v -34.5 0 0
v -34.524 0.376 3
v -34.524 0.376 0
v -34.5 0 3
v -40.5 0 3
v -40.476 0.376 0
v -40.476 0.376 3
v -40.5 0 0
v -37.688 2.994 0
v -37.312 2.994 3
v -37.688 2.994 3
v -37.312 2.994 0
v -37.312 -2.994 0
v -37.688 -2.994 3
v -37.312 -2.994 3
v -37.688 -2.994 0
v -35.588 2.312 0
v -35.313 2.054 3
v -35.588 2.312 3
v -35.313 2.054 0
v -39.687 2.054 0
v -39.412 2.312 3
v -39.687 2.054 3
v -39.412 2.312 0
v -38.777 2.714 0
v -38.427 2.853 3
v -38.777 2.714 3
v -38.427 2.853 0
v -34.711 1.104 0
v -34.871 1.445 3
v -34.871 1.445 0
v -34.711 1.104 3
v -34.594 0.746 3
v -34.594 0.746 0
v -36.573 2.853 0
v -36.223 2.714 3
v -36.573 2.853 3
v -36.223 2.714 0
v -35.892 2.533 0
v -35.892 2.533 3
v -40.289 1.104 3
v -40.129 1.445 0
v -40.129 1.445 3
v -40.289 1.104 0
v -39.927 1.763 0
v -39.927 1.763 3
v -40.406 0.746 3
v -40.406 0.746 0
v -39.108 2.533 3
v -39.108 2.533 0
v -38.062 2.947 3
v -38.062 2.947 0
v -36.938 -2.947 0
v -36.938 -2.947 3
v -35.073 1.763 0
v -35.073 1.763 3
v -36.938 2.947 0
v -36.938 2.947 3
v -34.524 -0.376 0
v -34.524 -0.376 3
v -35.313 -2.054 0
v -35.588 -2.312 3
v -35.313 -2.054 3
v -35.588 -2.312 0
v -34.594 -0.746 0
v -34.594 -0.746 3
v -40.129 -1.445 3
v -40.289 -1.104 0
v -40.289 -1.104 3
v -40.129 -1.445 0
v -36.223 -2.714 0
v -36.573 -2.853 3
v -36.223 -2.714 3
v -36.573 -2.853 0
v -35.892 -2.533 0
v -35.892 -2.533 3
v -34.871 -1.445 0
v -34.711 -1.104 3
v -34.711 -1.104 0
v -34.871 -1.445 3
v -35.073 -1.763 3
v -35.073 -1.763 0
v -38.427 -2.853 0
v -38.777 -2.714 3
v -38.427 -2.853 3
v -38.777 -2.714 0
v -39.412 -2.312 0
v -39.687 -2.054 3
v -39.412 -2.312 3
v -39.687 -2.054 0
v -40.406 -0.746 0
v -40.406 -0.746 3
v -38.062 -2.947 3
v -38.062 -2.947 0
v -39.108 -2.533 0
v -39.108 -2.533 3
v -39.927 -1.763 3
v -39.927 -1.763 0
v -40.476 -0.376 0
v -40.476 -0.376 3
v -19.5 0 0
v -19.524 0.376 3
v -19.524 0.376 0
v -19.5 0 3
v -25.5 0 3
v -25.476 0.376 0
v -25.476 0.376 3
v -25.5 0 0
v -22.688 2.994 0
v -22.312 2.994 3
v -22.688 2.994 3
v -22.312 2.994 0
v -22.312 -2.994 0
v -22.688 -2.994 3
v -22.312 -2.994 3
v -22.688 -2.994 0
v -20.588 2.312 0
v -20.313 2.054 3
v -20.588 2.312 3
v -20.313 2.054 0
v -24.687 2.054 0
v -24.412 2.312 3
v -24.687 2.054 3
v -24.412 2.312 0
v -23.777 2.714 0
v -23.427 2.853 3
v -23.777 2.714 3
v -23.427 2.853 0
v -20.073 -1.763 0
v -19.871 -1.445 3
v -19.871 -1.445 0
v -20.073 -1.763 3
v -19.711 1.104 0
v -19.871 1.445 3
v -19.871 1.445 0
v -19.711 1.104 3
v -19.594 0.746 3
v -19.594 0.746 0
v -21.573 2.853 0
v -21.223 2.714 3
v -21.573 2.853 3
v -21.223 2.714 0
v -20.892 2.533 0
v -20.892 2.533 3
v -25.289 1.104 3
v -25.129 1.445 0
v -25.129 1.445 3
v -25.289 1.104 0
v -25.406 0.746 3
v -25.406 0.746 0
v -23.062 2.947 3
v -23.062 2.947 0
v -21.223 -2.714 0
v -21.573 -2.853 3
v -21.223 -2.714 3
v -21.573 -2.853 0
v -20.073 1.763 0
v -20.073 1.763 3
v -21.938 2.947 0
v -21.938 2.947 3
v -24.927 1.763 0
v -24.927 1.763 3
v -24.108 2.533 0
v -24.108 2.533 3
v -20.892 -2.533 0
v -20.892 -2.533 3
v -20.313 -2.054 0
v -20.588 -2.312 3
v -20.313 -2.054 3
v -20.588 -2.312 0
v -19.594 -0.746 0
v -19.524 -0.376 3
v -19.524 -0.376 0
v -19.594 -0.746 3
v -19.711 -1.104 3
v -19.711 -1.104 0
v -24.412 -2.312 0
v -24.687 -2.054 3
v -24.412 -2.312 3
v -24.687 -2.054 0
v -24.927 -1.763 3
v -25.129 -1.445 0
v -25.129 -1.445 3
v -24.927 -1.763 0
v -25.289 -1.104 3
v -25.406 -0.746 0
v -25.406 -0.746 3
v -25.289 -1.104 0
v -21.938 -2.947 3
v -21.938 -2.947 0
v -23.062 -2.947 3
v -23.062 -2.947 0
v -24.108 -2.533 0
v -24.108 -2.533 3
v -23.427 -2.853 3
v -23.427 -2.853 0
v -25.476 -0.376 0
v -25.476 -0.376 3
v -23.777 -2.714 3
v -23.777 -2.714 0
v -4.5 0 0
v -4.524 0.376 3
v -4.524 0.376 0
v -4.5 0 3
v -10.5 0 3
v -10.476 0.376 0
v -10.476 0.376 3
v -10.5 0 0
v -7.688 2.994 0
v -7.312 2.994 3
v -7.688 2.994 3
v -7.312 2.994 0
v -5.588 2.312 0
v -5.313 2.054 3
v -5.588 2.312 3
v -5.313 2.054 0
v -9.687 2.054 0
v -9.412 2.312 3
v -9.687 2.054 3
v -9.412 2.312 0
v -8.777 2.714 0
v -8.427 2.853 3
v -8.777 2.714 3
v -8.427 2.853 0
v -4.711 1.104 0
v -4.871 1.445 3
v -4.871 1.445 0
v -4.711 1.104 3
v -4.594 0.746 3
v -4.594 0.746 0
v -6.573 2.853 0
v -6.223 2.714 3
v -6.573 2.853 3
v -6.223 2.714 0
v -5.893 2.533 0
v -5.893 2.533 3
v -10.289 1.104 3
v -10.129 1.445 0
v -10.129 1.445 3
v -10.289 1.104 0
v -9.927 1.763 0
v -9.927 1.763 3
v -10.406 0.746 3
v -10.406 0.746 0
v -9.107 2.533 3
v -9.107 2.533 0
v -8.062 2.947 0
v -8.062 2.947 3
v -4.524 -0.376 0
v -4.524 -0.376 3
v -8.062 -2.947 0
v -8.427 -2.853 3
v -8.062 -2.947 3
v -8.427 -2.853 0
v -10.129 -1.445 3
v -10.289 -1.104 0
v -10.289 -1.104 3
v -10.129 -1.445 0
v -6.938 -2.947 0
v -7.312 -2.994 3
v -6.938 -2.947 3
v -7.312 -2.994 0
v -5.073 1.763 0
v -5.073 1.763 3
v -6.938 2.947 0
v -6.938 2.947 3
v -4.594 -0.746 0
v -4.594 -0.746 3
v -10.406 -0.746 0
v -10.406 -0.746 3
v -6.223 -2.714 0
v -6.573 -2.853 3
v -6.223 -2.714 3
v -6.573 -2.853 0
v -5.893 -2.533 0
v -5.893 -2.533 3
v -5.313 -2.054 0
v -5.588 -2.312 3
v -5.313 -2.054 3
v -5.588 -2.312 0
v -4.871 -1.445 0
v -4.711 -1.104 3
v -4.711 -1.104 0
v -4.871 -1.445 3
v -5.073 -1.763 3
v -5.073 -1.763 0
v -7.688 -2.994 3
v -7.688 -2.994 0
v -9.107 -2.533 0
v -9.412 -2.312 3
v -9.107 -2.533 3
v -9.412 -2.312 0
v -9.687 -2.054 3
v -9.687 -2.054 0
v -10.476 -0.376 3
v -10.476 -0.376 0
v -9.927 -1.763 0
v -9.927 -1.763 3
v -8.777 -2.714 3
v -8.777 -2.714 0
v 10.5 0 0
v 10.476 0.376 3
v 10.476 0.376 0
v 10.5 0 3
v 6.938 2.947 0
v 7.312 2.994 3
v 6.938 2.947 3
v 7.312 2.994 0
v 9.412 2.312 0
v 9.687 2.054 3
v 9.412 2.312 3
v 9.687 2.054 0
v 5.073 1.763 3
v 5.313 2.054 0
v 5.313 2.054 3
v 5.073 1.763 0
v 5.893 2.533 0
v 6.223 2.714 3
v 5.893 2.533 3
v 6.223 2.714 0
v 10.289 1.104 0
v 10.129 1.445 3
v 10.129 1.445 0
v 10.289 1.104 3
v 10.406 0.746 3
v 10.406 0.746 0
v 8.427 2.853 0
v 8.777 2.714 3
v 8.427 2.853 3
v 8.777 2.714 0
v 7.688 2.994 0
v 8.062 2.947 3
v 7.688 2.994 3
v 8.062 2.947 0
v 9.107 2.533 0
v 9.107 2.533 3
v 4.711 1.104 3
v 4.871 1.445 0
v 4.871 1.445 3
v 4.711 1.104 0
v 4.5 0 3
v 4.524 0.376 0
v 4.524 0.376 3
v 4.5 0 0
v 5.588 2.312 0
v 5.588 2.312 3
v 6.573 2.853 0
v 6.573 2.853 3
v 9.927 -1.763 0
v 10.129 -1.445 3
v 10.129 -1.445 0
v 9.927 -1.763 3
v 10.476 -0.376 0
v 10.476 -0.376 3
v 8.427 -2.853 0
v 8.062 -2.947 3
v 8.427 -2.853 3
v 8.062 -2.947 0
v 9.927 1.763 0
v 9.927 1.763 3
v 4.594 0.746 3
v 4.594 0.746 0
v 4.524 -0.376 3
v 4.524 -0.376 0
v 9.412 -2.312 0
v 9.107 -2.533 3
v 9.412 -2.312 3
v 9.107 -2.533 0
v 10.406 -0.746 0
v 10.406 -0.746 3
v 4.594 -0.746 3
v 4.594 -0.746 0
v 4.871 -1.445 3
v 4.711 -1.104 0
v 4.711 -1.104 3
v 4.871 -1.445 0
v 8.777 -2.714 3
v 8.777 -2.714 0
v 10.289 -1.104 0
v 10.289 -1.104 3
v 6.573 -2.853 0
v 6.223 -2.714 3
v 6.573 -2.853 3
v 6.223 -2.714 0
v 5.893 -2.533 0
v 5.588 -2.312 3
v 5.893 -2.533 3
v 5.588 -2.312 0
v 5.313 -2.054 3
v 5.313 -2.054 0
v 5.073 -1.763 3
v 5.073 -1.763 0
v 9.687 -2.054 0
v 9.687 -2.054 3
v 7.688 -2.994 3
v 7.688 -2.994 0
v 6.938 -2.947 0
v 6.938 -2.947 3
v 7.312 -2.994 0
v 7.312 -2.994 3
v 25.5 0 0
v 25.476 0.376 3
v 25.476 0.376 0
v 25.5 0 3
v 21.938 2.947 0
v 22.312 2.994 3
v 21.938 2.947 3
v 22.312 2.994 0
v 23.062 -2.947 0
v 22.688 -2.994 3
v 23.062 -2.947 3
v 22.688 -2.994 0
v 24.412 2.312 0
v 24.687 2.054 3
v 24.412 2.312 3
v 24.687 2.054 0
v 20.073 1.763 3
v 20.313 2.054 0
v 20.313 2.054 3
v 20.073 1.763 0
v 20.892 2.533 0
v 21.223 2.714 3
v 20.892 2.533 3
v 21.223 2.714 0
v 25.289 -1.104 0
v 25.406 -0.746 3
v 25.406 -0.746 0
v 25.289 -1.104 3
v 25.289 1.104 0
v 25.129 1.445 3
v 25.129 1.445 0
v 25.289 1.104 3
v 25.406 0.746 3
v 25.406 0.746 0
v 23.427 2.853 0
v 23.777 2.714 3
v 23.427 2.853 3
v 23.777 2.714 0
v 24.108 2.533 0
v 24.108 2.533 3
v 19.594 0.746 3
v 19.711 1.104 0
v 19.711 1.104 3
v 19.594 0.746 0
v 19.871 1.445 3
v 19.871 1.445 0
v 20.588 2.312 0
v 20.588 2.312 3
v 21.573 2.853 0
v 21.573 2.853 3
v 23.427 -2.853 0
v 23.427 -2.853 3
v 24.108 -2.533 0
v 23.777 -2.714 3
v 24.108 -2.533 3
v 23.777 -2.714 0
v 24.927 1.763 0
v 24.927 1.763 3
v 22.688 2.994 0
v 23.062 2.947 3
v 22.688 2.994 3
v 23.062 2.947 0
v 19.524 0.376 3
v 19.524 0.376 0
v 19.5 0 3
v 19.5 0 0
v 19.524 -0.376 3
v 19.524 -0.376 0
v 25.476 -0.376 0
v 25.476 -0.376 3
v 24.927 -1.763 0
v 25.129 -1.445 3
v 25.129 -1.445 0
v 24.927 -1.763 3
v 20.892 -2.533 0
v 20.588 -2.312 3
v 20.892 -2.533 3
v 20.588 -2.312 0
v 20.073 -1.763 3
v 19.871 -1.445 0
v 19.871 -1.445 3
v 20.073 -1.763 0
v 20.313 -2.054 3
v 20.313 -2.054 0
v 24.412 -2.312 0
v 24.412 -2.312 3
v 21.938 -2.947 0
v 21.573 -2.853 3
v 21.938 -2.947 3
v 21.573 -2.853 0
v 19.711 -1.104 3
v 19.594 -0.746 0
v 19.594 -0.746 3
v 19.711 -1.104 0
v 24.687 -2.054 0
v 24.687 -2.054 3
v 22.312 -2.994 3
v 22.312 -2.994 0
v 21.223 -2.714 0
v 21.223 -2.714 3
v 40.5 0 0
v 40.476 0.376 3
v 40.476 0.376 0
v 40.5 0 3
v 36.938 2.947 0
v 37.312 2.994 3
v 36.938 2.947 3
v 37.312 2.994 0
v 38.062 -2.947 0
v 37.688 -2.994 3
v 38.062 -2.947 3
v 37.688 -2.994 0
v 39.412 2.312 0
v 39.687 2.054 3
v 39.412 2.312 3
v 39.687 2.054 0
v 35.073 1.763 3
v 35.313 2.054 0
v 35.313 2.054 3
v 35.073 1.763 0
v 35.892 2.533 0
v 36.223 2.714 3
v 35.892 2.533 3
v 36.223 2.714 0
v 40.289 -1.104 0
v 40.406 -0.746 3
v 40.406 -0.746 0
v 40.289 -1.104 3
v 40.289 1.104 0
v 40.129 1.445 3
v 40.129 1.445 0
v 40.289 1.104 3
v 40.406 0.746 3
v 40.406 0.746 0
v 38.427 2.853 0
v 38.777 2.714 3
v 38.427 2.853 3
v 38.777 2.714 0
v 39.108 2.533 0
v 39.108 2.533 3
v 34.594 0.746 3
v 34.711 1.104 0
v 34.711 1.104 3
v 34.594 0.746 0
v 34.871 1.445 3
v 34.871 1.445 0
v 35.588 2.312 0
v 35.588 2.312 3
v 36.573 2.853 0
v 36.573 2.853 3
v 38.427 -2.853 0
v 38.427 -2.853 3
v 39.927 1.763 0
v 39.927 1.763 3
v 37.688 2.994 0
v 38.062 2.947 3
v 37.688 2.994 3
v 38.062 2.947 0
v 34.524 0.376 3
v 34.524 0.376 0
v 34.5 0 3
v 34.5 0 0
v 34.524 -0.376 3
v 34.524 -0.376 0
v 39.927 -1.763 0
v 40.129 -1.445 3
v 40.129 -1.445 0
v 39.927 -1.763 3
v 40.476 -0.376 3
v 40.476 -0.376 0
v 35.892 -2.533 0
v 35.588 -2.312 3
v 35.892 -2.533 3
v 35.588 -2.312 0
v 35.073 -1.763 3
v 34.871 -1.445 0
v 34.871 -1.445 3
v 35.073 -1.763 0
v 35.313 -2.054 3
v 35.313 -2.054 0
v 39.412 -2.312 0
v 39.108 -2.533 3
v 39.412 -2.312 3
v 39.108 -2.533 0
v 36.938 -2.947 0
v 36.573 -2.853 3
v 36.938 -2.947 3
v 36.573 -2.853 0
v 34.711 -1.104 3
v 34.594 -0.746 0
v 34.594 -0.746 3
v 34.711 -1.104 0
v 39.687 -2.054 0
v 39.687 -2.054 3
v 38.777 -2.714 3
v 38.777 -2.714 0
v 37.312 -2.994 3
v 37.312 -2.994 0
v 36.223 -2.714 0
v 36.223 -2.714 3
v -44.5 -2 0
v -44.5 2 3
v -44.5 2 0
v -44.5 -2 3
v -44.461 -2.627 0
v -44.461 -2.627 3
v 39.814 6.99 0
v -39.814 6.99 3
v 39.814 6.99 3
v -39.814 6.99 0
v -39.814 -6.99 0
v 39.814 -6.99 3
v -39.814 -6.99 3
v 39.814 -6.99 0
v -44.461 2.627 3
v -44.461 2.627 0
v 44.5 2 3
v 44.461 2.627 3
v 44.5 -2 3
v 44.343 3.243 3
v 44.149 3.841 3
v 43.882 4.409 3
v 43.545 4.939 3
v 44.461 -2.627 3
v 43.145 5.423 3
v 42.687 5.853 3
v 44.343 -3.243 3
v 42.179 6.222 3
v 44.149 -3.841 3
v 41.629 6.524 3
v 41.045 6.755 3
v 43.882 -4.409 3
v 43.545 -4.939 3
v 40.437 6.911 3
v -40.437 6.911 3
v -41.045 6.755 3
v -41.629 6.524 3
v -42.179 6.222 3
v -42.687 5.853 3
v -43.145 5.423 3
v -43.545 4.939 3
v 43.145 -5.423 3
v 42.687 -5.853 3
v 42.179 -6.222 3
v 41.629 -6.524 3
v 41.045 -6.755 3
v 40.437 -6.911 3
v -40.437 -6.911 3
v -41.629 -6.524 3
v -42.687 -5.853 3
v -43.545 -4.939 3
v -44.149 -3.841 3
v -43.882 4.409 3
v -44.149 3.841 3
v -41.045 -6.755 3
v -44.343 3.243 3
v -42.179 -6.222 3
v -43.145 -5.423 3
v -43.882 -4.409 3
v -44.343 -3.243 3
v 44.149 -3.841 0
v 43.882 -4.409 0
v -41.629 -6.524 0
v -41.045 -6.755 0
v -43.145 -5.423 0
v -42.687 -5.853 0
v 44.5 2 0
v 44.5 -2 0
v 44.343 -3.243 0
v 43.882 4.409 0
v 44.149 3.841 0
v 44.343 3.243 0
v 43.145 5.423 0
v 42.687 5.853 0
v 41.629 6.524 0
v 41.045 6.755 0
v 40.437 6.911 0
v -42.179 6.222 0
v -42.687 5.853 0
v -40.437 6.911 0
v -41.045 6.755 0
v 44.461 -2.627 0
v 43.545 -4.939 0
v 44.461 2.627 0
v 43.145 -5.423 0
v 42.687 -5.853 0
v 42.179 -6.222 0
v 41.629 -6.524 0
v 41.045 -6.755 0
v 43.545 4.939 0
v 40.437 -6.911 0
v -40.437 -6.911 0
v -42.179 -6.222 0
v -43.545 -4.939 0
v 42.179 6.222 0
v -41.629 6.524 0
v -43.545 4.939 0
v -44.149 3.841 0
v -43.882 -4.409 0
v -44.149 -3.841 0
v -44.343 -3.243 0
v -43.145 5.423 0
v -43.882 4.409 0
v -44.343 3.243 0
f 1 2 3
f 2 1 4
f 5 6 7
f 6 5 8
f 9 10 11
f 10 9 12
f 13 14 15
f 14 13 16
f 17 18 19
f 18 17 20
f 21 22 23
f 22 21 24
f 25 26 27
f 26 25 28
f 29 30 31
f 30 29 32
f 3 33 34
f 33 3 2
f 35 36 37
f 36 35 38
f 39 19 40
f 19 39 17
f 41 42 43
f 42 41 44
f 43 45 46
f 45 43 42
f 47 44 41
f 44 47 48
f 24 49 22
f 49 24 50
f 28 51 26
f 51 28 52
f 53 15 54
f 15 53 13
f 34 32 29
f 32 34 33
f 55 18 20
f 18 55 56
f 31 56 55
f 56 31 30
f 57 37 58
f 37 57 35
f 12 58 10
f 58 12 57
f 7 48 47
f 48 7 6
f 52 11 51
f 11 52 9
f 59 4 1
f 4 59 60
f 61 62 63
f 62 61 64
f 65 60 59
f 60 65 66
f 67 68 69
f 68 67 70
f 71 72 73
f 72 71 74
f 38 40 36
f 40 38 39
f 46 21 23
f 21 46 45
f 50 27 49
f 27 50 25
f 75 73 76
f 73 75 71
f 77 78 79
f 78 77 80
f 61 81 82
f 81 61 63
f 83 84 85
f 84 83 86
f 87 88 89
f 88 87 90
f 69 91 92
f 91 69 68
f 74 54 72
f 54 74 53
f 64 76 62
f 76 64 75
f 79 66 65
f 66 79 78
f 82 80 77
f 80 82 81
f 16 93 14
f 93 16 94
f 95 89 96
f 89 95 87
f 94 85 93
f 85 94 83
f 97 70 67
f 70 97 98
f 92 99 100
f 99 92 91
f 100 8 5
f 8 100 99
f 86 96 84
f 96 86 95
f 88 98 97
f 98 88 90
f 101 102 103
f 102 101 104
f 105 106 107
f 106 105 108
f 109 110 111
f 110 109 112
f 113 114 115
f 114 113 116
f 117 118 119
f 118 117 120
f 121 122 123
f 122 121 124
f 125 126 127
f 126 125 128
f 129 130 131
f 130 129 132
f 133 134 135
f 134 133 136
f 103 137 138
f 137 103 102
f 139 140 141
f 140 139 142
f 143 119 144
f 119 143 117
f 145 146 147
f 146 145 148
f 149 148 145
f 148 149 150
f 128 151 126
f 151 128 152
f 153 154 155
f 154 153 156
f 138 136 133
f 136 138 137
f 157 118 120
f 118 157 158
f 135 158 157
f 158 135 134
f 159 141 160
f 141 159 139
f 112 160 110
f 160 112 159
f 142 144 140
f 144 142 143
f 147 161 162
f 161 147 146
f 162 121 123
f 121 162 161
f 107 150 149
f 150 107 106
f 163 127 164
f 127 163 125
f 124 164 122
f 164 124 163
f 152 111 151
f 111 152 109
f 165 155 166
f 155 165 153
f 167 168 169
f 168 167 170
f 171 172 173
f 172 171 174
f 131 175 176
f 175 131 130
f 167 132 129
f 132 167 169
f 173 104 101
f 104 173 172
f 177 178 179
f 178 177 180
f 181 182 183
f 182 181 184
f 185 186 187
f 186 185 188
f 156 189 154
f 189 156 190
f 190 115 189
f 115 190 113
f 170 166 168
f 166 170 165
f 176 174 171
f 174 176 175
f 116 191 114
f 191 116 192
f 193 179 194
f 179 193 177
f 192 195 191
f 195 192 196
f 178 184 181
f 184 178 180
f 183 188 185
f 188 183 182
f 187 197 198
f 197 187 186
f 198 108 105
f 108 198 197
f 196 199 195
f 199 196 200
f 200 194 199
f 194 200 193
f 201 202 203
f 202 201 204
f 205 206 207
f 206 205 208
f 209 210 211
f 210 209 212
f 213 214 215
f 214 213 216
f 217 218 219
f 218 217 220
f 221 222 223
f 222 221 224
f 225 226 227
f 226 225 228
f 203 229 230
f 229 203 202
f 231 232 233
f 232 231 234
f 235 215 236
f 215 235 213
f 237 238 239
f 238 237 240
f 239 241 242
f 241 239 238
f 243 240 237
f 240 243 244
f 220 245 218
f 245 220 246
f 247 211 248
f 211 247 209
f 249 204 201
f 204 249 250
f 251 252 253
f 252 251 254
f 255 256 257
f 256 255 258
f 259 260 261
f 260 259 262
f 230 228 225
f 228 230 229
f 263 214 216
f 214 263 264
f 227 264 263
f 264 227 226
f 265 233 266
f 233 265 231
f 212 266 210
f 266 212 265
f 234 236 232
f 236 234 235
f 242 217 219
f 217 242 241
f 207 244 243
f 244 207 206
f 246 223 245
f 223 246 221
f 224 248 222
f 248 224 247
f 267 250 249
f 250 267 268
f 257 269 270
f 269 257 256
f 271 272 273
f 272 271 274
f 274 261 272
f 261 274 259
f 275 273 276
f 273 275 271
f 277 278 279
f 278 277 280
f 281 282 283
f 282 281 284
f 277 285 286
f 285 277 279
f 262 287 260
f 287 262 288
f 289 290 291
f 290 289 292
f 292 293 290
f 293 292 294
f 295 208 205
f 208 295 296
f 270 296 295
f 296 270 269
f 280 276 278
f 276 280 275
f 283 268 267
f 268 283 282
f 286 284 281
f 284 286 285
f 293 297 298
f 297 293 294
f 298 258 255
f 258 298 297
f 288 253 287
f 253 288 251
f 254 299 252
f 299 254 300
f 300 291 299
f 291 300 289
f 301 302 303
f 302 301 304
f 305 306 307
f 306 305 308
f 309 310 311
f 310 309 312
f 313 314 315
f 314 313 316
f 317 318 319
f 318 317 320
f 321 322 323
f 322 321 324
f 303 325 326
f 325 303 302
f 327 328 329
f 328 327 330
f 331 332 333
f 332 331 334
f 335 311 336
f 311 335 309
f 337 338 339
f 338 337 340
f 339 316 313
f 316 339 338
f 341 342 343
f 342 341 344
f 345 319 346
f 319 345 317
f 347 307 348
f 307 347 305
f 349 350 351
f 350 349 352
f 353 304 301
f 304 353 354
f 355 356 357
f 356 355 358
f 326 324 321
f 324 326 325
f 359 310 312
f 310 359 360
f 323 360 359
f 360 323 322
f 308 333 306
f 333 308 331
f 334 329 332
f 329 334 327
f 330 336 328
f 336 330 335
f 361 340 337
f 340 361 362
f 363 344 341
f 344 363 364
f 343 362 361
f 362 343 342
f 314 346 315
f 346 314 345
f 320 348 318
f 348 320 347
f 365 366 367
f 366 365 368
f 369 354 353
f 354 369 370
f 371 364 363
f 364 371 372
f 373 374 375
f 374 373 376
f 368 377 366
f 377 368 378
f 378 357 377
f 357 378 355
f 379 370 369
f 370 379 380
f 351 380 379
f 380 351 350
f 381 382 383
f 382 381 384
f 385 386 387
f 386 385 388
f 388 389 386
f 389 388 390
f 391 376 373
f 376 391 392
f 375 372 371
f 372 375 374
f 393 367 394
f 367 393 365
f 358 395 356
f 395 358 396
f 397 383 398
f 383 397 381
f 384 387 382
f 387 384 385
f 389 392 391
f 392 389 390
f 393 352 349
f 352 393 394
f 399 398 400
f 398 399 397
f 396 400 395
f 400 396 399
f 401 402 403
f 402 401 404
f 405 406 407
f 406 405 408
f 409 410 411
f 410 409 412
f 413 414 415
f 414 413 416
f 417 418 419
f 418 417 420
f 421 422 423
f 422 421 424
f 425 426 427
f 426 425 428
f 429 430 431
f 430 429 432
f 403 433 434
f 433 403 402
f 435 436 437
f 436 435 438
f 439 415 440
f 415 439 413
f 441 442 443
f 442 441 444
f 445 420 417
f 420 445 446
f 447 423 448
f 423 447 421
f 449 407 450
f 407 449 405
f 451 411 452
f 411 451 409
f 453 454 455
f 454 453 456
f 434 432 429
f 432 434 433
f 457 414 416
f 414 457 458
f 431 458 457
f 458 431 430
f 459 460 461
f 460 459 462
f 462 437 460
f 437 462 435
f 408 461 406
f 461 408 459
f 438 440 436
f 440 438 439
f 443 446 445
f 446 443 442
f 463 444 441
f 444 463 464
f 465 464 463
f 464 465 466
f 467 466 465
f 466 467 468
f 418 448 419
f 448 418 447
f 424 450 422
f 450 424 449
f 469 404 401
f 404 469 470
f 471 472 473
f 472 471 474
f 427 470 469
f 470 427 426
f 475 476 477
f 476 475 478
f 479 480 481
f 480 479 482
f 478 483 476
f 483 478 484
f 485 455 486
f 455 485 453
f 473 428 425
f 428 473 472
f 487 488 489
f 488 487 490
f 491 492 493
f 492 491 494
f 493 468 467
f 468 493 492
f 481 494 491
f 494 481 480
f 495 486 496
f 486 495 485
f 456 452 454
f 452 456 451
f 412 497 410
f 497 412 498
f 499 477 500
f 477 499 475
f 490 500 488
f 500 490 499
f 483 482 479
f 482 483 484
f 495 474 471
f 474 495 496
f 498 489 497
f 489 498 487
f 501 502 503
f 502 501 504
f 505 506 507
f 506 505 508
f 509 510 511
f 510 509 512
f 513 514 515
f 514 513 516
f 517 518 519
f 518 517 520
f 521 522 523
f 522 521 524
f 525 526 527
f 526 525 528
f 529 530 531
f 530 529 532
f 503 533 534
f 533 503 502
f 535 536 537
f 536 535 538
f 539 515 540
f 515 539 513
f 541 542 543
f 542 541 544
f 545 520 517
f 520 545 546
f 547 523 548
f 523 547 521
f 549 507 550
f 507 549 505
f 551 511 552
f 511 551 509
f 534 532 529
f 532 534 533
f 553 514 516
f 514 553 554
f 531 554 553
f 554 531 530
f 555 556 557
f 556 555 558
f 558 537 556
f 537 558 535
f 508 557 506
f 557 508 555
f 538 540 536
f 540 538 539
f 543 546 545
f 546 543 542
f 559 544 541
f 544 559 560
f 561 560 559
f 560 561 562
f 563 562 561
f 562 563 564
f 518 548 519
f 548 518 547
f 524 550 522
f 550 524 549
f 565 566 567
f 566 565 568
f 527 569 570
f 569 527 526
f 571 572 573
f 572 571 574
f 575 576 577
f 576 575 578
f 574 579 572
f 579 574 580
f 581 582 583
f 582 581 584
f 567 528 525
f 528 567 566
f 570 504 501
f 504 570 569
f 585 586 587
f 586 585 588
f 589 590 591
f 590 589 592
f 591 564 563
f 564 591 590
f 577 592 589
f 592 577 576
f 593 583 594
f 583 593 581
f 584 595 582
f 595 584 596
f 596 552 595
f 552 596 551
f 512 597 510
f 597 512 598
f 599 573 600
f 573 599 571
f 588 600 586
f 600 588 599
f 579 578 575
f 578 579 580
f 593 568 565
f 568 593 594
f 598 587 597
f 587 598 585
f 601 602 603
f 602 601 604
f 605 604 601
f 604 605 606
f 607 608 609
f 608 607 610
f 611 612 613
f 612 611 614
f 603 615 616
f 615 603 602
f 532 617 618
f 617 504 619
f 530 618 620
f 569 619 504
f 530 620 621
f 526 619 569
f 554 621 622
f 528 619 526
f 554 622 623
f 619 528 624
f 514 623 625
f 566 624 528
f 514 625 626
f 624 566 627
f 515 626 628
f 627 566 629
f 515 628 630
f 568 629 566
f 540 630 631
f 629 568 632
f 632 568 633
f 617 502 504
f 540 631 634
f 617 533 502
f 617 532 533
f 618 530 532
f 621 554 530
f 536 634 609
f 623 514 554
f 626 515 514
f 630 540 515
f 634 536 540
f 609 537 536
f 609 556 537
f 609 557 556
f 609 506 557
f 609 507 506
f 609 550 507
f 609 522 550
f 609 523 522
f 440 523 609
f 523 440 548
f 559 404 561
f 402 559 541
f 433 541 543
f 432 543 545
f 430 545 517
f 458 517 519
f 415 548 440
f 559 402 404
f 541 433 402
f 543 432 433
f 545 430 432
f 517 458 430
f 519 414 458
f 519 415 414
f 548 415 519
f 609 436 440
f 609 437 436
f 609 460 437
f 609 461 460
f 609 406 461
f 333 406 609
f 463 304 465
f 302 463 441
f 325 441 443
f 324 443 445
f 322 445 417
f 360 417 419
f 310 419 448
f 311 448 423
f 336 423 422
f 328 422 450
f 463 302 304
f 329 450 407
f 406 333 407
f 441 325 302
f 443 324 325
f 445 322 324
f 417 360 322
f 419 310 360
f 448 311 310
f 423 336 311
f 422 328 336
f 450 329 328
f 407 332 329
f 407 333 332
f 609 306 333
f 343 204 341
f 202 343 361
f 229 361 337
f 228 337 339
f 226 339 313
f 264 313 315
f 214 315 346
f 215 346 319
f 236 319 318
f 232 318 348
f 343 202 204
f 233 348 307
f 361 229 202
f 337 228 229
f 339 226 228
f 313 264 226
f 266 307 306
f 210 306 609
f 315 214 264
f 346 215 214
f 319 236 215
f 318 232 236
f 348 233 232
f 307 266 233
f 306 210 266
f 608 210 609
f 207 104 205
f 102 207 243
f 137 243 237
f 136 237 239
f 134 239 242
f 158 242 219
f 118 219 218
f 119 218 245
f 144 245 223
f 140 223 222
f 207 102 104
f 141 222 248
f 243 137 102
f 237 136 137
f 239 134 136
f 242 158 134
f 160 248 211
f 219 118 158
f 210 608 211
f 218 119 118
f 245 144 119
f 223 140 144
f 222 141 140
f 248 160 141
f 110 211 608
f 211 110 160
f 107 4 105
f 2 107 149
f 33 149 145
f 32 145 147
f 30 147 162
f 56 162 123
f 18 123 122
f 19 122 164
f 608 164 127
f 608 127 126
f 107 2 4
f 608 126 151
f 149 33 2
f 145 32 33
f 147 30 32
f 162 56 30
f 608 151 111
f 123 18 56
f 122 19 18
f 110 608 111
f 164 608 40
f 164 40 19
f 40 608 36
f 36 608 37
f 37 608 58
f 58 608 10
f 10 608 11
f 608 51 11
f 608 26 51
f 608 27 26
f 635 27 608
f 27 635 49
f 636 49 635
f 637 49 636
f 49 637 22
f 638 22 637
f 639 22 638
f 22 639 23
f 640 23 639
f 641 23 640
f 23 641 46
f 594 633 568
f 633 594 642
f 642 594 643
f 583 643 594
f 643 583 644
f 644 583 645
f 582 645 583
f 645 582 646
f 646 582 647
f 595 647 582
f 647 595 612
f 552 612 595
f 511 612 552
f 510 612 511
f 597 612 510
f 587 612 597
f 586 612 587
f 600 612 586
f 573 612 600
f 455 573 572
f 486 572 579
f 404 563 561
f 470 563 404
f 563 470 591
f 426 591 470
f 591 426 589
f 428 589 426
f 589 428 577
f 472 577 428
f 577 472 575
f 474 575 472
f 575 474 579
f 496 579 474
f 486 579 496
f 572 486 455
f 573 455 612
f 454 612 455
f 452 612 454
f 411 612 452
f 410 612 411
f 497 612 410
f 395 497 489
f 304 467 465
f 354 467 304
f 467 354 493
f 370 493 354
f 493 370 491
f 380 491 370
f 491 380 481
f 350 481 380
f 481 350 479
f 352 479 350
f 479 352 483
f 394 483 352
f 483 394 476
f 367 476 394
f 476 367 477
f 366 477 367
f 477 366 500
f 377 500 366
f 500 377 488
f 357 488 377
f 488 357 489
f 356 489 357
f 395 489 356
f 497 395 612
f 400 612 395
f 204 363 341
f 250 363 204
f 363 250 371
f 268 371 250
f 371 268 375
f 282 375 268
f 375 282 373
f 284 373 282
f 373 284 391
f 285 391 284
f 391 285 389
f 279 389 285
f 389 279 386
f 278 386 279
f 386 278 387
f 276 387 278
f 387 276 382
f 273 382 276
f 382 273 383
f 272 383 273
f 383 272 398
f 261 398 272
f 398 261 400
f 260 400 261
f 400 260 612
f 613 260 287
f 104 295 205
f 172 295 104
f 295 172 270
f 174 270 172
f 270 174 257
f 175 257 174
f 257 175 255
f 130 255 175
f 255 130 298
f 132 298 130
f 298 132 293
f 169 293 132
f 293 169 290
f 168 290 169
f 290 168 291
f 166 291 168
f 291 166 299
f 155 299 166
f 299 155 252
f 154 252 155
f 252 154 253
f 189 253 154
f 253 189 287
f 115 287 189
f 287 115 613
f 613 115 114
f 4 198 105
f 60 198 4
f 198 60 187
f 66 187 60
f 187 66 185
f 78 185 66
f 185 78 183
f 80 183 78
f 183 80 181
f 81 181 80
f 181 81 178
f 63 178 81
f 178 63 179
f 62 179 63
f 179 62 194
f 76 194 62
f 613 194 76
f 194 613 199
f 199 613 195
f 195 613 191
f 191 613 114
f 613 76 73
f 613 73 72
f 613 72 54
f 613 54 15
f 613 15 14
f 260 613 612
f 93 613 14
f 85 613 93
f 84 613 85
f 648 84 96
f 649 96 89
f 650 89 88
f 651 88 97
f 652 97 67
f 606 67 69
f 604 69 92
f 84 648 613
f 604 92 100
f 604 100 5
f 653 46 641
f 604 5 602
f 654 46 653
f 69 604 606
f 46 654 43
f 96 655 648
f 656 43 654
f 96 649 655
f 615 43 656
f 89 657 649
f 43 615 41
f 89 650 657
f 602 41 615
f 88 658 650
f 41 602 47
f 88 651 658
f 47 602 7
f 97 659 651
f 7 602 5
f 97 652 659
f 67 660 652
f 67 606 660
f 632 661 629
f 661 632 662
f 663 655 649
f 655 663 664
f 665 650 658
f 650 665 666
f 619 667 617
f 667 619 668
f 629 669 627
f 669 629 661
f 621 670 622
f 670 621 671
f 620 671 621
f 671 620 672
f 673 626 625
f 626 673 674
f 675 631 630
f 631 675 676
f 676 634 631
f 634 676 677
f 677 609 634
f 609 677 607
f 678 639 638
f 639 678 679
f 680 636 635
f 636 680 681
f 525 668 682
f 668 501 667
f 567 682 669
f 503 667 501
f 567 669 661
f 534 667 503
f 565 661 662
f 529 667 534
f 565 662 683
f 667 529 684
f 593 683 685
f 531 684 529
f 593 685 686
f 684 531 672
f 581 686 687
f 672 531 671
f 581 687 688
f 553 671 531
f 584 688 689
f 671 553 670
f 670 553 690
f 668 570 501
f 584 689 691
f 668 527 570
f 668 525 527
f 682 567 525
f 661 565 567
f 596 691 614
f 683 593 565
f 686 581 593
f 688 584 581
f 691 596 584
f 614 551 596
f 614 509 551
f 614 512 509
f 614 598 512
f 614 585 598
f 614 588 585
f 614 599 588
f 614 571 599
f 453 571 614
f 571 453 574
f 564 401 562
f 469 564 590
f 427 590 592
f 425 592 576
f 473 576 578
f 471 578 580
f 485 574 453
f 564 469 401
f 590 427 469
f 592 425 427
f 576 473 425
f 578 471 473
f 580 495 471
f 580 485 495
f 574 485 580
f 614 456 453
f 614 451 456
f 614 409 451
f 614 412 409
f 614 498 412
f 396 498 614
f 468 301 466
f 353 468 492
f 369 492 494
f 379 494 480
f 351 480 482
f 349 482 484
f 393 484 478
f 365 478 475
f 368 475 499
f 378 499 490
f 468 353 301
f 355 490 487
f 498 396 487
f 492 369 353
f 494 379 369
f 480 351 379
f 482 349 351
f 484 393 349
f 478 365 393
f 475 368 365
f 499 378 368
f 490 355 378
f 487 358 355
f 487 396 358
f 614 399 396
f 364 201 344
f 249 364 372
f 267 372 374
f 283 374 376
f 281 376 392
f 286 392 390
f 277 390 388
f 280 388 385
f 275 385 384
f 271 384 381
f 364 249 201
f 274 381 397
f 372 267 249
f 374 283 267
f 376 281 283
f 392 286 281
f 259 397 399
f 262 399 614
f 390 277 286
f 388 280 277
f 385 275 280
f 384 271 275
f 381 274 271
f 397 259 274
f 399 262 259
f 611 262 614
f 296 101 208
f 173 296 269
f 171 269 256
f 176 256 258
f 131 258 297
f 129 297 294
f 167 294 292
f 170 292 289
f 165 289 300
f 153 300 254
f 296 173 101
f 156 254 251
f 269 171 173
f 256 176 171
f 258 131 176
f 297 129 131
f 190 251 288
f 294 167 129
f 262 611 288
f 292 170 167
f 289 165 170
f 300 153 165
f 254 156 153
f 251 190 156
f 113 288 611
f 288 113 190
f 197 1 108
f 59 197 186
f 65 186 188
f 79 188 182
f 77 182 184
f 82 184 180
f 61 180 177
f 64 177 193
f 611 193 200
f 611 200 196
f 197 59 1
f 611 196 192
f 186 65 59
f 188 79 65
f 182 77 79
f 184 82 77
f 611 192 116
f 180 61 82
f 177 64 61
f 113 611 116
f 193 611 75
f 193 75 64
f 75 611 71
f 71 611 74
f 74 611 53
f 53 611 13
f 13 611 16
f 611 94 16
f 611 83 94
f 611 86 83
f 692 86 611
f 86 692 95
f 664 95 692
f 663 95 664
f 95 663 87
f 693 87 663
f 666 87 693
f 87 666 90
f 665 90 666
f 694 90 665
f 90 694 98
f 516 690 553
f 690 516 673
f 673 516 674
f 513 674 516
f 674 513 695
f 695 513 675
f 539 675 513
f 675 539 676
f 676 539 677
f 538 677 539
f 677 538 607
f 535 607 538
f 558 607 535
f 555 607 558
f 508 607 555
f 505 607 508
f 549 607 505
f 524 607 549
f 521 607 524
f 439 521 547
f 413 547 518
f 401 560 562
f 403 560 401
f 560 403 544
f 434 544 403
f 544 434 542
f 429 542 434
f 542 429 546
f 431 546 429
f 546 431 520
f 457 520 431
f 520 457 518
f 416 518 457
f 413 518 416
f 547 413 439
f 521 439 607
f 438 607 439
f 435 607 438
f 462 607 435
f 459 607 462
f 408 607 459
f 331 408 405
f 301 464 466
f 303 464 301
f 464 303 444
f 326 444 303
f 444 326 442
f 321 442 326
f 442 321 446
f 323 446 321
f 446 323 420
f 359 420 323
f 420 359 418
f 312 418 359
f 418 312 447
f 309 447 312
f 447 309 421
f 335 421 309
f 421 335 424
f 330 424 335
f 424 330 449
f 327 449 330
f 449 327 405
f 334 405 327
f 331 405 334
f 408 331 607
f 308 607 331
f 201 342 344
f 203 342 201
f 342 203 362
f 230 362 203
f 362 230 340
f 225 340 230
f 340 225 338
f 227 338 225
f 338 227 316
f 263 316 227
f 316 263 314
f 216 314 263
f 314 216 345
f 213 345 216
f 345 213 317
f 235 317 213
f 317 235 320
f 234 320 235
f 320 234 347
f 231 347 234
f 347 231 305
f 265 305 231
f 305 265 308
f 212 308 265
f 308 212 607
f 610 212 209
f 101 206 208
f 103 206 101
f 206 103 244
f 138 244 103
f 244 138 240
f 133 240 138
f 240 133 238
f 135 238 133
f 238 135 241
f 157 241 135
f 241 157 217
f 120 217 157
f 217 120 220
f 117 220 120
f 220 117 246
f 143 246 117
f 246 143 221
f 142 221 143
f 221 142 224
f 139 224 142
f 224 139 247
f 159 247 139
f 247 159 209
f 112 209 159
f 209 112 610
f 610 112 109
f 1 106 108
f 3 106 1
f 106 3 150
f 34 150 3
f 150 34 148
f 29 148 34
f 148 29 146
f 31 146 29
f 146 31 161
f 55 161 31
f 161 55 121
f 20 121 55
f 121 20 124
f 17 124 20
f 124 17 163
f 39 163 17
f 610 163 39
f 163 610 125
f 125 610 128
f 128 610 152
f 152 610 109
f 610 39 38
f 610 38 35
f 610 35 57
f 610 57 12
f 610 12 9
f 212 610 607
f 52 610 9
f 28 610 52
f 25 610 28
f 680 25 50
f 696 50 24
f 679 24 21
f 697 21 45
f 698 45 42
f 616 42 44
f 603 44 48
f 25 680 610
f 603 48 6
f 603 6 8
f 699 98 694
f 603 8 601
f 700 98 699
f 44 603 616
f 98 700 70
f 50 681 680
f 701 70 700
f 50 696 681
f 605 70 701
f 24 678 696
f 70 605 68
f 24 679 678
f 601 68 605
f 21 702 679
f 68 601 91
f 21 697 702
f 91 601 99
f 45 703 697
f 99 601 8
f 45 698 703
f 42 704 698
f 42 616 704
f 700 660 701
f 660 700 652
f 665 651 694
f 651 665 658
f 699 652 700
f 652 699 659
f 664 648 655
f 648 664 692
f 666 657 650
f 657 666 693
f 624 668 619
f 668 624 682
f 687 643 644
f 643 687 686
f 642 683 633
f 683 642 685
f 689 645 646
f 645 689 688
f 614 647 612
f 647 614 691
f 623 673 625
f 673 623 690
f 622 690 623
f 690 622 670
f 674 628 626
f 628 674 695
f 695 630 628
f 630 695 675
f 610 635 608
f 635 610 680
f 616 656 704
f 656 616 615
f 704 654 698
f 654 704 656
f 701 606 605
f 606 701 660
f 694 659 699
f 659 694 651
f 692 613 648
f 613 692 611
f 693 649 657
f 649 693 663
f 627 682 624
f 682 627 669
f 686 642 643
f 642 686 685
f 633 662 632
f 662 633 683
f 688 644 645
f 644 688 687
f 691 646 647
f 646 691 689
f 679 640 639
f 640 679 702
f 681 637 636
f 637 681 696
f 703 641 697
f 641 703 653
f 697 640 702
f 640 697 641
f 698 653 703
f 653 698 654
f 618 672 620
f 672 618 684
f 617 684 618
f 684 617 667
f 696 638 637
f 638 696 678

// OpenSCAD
// Generated by SolidPython 1.1.3 on 2023-03-13 21:42:52
$fn = 50;


difference() {
	union() {
		translate(v = [0, 0, 0]) {
			rotate(a = [0, 0, 0]) {
				hull() {
					translate(v = [-39.5000000000, 2.0000000000, 0]) {
						rotate(a = [0, 0, 0]) {
							translate(v = [0, 0, 0]) {
								rotate(a = [0, 0, 0]) {
									cylinder(h = 3, r = 5);
								}
							}
						}
					}
					translate(v = [39.5000000000, 2.0000000000, 0]) {
						rotate(a = [0, 0, 0]) {
							translate(v = [0, 0, 0]) {
								rotate(a = [0, 0, 0]) {
									cylinder(h = 3, r = 5);
								}
							}
						}
					}
					translate(v = [-39.5000000000, -2.0000000000, 0]) {
						rotate(a = [0, 0, 0]) {
							translate(v = [0, 0, 0]) {
								rotate(a = [0, 0, 0]) {
									cylinder(h = 3, r = 5);
								}
							}
						}
					}
					translate(v = [39.5000000000, -2.0000000000, 0]) {
						rotate(a = [0, 0, 0]) {
							translate(v = [0, 0, 0]) {
								rotate(a = [0, 0, 0]) {
									cylinder(h = 3, r = 5);
								}
							}
						}
					}
				}
			}
		}
	}
	union() {
		translate(v = [-37.5000000000, 0.0000000000, 0]) {
			rotate(a = [0, 0, 0]) {
				translate(v = [0, 0, -50]) {
					rotate(a = [0, 0, 0]) {
						cylinder(h = 100, r = 3.0000000000);
					}
				}
			}
		}
		translate(v = [-22.5000000000, 0.0000000000, 0]) {
			rotate(a = [0, 0, 0]) {
				translate(v = [0, 0, -50]) {
					rotate(a = [0, 0, 0]) {
						cylinder(h = 100, r = 3.0000000000);
					}
				}
			}
		}
		translate(v = [-7.5000000000, 0.0000000000, 0]) {
			rotate(a = [0, 0, 0]) {
				translate(v = [0, 0, -50]) {
					rotate(a = [0, 0, 0]) {
						cylinder(h = 100, r = 3.0000000000);
					}
				}
			}
		}
		translate(v = [7.5000000000, 0.0000000000, 0]) {
			rotate(a = [0, 0, 0]) {
				translate(v = [0, 0, -50]) {
					rotate(a = [0, 0, 0]) {
						cylinder(h = 100, r = 3.0000000000);
					}
				}
			}
		}
		translate(v = [22.5000000000, 0.0000000000, 0]) {
			rotate(a = [0, 0, 0]) {
				translate(v = [0, 0, -50]) {
					rotate(a = [0, 0, 0]) {
						cylinder(h = 100, r = 3.0000000000);
					}
				}
			}
		}
		translate(v = [37.5000000000, 0.0000000000, 0]) {
			rotate(a = [0, 0, 0]) {
				translate(v = [0, 0, -50]) {
					rotate(a = [0, 0, 0]) {
						cylinder(h = 100, r = 3.0000000000);
					}
				}
			}
		}
	}
}
/***********************************************
*********      SolidPython code:      **********
************************************************
 
from solid import *
import os
import subprocess

import oomB

import opsc_library_gen

mode = "laser"
#mode = "3d_print"

defined_objects = {}

radius_dict = {}
countersunk_dict = {}


def set_mode(m):
    global mode
    mode = m
    radius_dict['M6'] = 6.5/2
    radius_dict['M3'] = 3.3/2
    if mode == "laser":
        radius_dict['M6'] = 6/2
        radius_dict['M3'] = 3/2

    countersunk_dict['M3'] = {}
    countersunk_dict['M3']['little_rad'] = radius_dict['M3']
    countersunk_dict['M3']['big_rad'] = (5.5+0.6)/2
    if mode == "laser":
        countersunk_dict['M3']['big_rad'] = (4.75+0.6)/2
        countersunk_dict['M3']['little_rad'] = (4.75+0.6)/2

    countersunk_dict['M3']['height'] = 1.7


def opsc_make_object(filename, objects, save_type="none",resolution=50, layers = 1, tilediff = 200, mode="laser", overwrite=True):
    if overwrite or not os.path.exists(filename):
        set_mode(mode)
        save_type = save_type.lower()
        os.makedirs(os.path.dirname(filename), exist_ok=True)
        final_object = opsc_get_object(objects, mode = mode)
        # Save the final object to the specified filename    
        scad_render_to_file(final_object, filename, file_header='$fn = %s;' % resolution, include_orig_code=True)
        if save_type == "all":
            saveToAll(filename)
        elif save_type == "dxf":
            saveToDxf(filename)
        if mode == "laser":
            filename_laser = filename.replace(".scad","-flat.scad")
            scad_render_to_file(getLaser(final_object, layers=layers, tilediff=tilediff), filename_laser, file_header='$fn = %s;' % resolution, include_orig_code=True)
            if save_type == "all":
                saveToAll(filename_laser)
            elif save_type == "dxf":
                saveToDxf(filename_laser)


def opsc_get_object(objects, mode = "laser"):
    # Create the solidpython objects only include the positive objects and if they don't have inclusion or their inclusion is either all or mode
    # Initialize an empty list to store the results
    positive_objects = []

    # Iterate over the "objects" list
    for obj in objects:
        # Check if the current object has a "type" key with a value of "positive"
        if obj['type'] == 'positive':
            # Check if the current object has an "inclusion" key and its value matches "mode",
            # or if the current object does not have an "inclusion" key at all
            if not 'inclusion' in obj or obj['inclusion'] == "all" or obj['inclusion'] == mode:
                # Call the "get_opsc_item" function with the current object as an argument
                opsc_item = get_opsc_item(obj)
                # Add the result to the "positive_objects" list
                positive_objects.append(opsc_item)
# Initialize an empty list to store the results
    negative_objects = []

    # Iterate over the "objects" list
    for obj in objects:
        # Check if the current object has a "type" key with a value of "negative"
        if obj['type'] == 'negative':
            # Check if the current object has an "inclusion" key and its value matches "mode",
            # or if the current object does not have an "inclusion" key at all
            if not 'inclusion' in obj or obj['inclusion'] == "all" or obj['inclusion'] == mode:
                # Call the "get_opsc_item" function with the current object as an argument
                opsc_item = get_opsc_item(obj)
                # Add the result to the "negative_objects" list
                negative_objects.append(opsc_item)
    
    #positive_objects = [get_opsc_item(obj) for obj in objects if obj['type'] == 'positive']
    #negative_objects = [get_opsc_item(obj) for obj in objects if obj['type'] == 'negative']
    # Union the positive objects
    positive_object = union()(*positive_objects)
    # Union the negative objects
    negative_object = union()(*negative_objects)
    # Create the final object by subtracting the negative objects from the positive objects
    return difference()(positive_object, negative_object)

def get_opsc_item(params):
    # A dictionary to map radius string values to numerical values
    #radius_dict = {'small': 5, 'medium': 10, 'large': 15}
    # An array of function names for basic shapes
    basic_shapes = ['cube', 'sphere', 'cylinder']
    
    # An array of function names for other shapes
    other_shapes = ['hole', 'slot', 'rounded_rectangle', 'countersunk', 'polyg']
    


    # Convert radius to r if present, and remove radius from the params dictionary
    if 'radius' in params:
        if isinstance(params['radius'], str):
            # Use the radius_dict to map the radius string value to a numerical value
            params['r'] = radius_dict[params['radius']]
        else:
            params['r'] = params['radius']
        del params['radius']
    

    # Check if the object type is a basic shape
    if params['shape'] in basic_shapes:
        # Remove shape and unexpected dictionary values
        allowed_keys = {'size', 'r', 'r1', 'r2', 'd', 'h', 'rw', 'rh', 'dw', 'dh'}
        shape_params = {k: v for k, v in params.items() if k in allowed_keys}

        #params['m'] = "#"
        ###split for adding modifier
        try:
            m = params['m']
            func = globals()[params['shape']]
            return_value = get_opsc_transform(params,func(**shape_params))
            return_value = (return_value).set_modifier(m)
            return return_value
        except KeyError as e:
            return get_opsc_transform(params,globals()[params['shape']](**shape_params))
        
    elif params['shape'] == 'polygon':
        # Remove shape and unexpected dictionary values
        h  = params['height']
        allowed_keys = {'points'}
        shape_params = {k: v for k, v in params.items() if k in allowed_keys}

        # Call the corresponding function for the shape parameter, using ** notation to pass the shape_params dictionary as keyword arguments
        params["rot"] = [0,0,0]        
        try:
            m = params['m']
            func = globals()[params['shape']]
            return_value = get_opsc_transform(params,linear_extrude(h)(globals()[params['shape']](**shape_params)))
            return_value = (return_value).set_modifier(m)
            return return_value
        except KeyError as e:
            return_value = get_opsc_transform(params,linear_extrude(h)(globals()[params['shape']](**shape_params)))
            return_value = (return_value)
            return return_value


    # If the object type is not a basic shape, check if it's a defined object or one of the other shapes
    elif params['shape'] in other_shapes:
        # Call the corresponding function for the shape parameter, passing the params dictionary as an argument
        p2 = copy.deepcopy(params)
        p2["pos"] = [0,0,0]
        return get_opsc_transform(params,globals()[params['shape']](p2))
    
    # If the object is not a basic shape or a defined object, try to import it from a .scad file
    else:
        obj = defined_objects[params['shape']]
        return get_opsc_transform(params,obj)

def get_opsc_transform(params, solid_obj):
    # Rotate the object based on the 'rot' field in the params dictionary, or the 'rotX', 'rotY', and 'rotZ' fields if 'rot' is not present
    rot = params.get('rot', [])
    if rot:
        rotX, rotY, rotZ = rot
    else:
        rotX = params.get('rotX', 0)
        rotY = params.get('rotY', 0)
        rotZ = params.get('rotZ', 0)
    solid_obj = rotate([rotX, rotY, rotZ])(solid_obj)

    # Translate the object based on the 'pos' field in the params dictionary, or the 'x', 'y', and 'z' fields if 'pos' is not present
    pos = params.get('pos', [])
    if pos:
        x, y, z = pos
    else:
        x = params.get('x', 0)
        y = params.get('y', 0)
        z = params.get('z', 0)
    solid_obj = translate([x, y, z])(solid_obj)
    return solid_obj


import random

def opsc_easy_array(type, shape, repeats, pos_start, shift_arr, **kwargs):
    for i in range(0,3):
        repeats.append(1)
        pos_start.append(0)
        shift_arr.append(0)
    return_objects = []

    for x in range(0,repeats[0]):
        for y in range(0,repeats[1]):
            for z in range(0,repeats[2]):
                return_objects.append(opsc_easy(type, shape, pos=[pos_start[0]+x*shift_arr[0],pos_start[1]+y*shift_arr[1],pos_start[2]+z*shift_arr[2]], **kwargs))
    return return_objects                



def opsc_easy(type, shape, **kwargs):
    obj = {
        'type': type,
        'shape': shape
    }
    for param in ['size', 'r', 'r1', 'r2', 'd', 'h', 'rw', 'rh', 'dw', 'dh', 'pos', 'x', 'y', 'z', 'rot', 'rotX', 'rotY', 'rotZ', "w", "inclusion", 'sides', 'height', "m"]:
        if param in kwargs:
            obj[param] = kwargs[param]
    return obj

def hole(params):
    p2 = copy.deepcopy(params)  
    # Check if the radius is a string and replace it with the corresponding value from the dictionary
    if isinstance(p2['r'], str):
        p2['r'] = radius_dict[p2['r']]
    
    # Set the height to 100 if not specified
    if 'h' not in p2:
        p2['h'] = 100
        p2["pos"] = [0,0,-50]
    p2["center"] = True
    # Create the cylinder object
    p2["shape"] = "cylinder"
    p2["type"] = "positive"

    return get_opsc_item(p2)

import copy

def countersunk(params):
    p2 = copy.deepcopy(params)
    counter_rad = p2['r']
    p2['r'] = radius_dict[p2['r']]
    hp = copy.deepcopy(p2)
    hp["type"] = "positive"
    hp["shape"] = "hole"
    del hp["rot"]
    hol = get_opsc_item(hp)
    
    cp = copy.deepcopy(p2)
    cp["h"] = countersunk_dict[counter_rad]["height"]
    cp["r2"] = countersunk_dict[counter_rad]["little_rad"]
    cp["r1"] = countersunk_dict[counter_rad]["big_rad"]
    del cp["r"]
    del cp["rot"]
    cp["type"] = "positive"
    cp["shape"] = "cylinder"
    cp["pos"] = [0,0,0]

    top = get_opsc_item(cp)
    return union()(hol,top)



def slot(params):  
    p2 = copy.deepcopy(params) 
    if isinstance(p2['r'], str):
        p2['r'] = radius_dict[p2['r']]
    p2["type"] = "positive"
    p2["shape"] = "hole"
    del p2["rot"]
    p2["pos"] = [0,0,0]
    left = copy.deepcopy(p2)
    right = copy.deepcopy(p2)
    left["pos"][0] = p2["w"] / 2 - p2["r"] 
    
    right["pos"][0] = -p2["w"] / 2 + p2["r"] 
    pass
    leftObj = get_opsc_item(left)
    rightObj = get_opsc_item(right)
    return hull()(leftObj, rightObj)

def rounded_rectangle(params):   
    p2 = copy.deepcopy(params) 
    p2["h"] = p2["size"][2]
    p2["pos"] = p2.get("pos", [0, 0, 0]) 
    p2["type"] = "positive"
    p2["shape"] = "hole"
    p2["pos"] = [0,0,0]
    
    if 'rot' in p2:
        del p2["rot"]   
    if 'r' not in p2:
        p2["r"] = 5 
    tl = copy.deepcopy(p2)
    tr = copy.deepcopy(p2)
    bl = copy.deepcopy(p2)
    br = copy.deepcopy(p2)
    tl["pos"][0] = -(p2["size"][0] - p2["r"]*2)/2
    tl["pos"][1] = (p2["size"][1] - p2["r"]*2)/2
    tr["pos"][0] = (p2["size"][0] - p2["r"]*2)/2
    tr["pos"][1] = (p2["size"][1] - p2["r"]*2)/2
    bl["pos"][0] = -(p2["size"][0] - p2["r"]*2)/2
    bl["pos"][1] = -(p2["size"][1] - p2["r"]*2)/2
    br["pos"][0] = (p2["size"][0] - p2["r"]*2)/2
    br["pos"][1] = -(p2["size"][1] - p2["r"]*2)/2
    del tl["size"]
    del tr["size"]
    del bl["size"]
    del br["size"]
    tlo = get_opsc_item(tl)
    tro = get_opsc_item(tr)
    blo = get_opsc_item(bl)
    bro = get_opsc_item(br)    
    return hull()(tlo, tro, blo, bro)



def polyg(params):
    p2 = copy.deepcopy(params) 
    p2["type"] = "positive"
    p2["shape"] = "polygon"
    p2["pos"] = [0,0,0]
    sides = p2["sides"]
    radius = p2["r"]    
    angles = [i * 360 / sides for i in range(sides)]
    points = regular_polygon(sides, radius)
    
    p2["points"] = points
    return get_opsc_item(p2)

import math

def regular_polygon(num_sides, radius):
    # Calculate the angle between each side
    angle = 2 * math.pi / num_sides

    # Calculate the points of the polygon
    points = []
    for i in range(num_sides):
        x = radius * math.cos(i * angle)
        y = radius * math.sin(i * angle)
        points.append((x, y))
    return points

def import_scad_object(filename):
    # Import the .scad file and convert it to a solidpython object
    #filename = "parts"
    obj = import_scad(filename)
    return obj.main()



import os
import solid as solidpython

# A dictionary to store the defined objects


def load_scad_objects():
    opsc_library_gen.gen_library(defined_objects)

import random

def test(num_objects):
    objects = []
    for i in range(num_objects):
        # Choose a random shape
        #shape = random.choice(['cube', 'sphere', 'cylinder', 'hole', 'slot', "rounded_rectangle"])
        shape = random.choice(["rounded_rectangle"])

        # Choose a random type
        type = random.choice(['positive', 'negative'])
        
        # Create an empty object dictionary
        obj = {'shape': shape, 'type': type}
        
        # Set shape-specific parameters
        if obj['shape'] in ['cube']:
            obj['size'] =  [random.uniform(5, 15), random.uniform(5, 15), random.uniform(5, 15)]
        if obj['shape'] in ['rounded_rectangle']:
            obj['size'] =  [random.uniform(5, 15), random.uniform(5, 15), random.uniform(5, 15)]
            obj['r'] = random.uniform(0.5, 5)
        elif obj['shape'] == 'sphere':
            obj['r'] = random.uniform(5, 15)
        elif obj['shape'] in ['cylinder', 'hole']:
            obj['r'] = random.uniform(0.5, 5)
            obj['h'] = random.uniform(5, 15)
        elif obj['shape'] == 'slot':
            obj['r'] = random.uniform(0.5, 5)
            obj['h'] = random.uniform(5, 15)
            obj['w'] = random.uniform(5, 15)
        
        # Set a random position and rotation
        obj['pos'] = [random.uniform(-20, 20), random.uniform(-20, 20), random.uniform(-20, 20)]
        obj['rot'] = [random.uniform(-180, 180), random.uniform(-180, 180), random.uniform(-180, 180)]
        
        # Add the object to the list
        objects.append(obj)
    return objects

####### old file saving
def saveToAll(fileIn):
    saveToStl(fileIn)
    saveToDxf(fileIn)
    saveToPng(fileIn)
    saveToSvg(fileIn)

def saveToDxf(fileIn, fileOut="", copy_to_laser=True):
    if fileOut == "":
        fileOut = fileIn.replace(".scad",".dxf")
    saveToFile(fileIn, fileOut)


    
def saveToPng(fileIn, fileOut="",extra="--render"):
    if fileOut == "":
        fileOut = fileIn.replace(".scad",".png")
    saveToFile(fileIn, fileOut)

def saveToStl(fileIn, fileOut=""):
    if fileOut == "":
        fileOut = fileIn.replace(".scad",".stl")
    saveToFile(fileIn, fileOut)
    
def saveToSvg(fileIn, fileOut=""):
    if fileOut == "":
        fileOut = fileIn.replace(".scad",".svg")
    saveToFile(fileIn, fileOut)

def saveToFile(fileIn, fileOut,extra=""):
    #extra = extra + " --colorscheme Tomorrow"

    launchStr = 'openscad -o "' + fileOut + '"' + extra + ' "' + fileIn + '"'
    if ".png" in fileOut:
        launchStr = launchStr + " --render"
    print("            saveToFile launch string: " + launchStr)
    subprocess.run(launchStr)
    x=0

def getLaser(final_object,start=1.5,layers=1,thickness=3,tilediff=200):
        rv= []

        for x in range(layers):
            rv.append(translate([0,x*tilediff,0])(
                    projection()(
                        intersection()(translate([-500,-500,start+x*thickness])(cube(size=[1000,1000,0.1])),
                            final_object
                        )
                    )
            )
            )
            
        return union()(rv)

set_mode("laser")
load_scad_objects() 
 
************************************************/
